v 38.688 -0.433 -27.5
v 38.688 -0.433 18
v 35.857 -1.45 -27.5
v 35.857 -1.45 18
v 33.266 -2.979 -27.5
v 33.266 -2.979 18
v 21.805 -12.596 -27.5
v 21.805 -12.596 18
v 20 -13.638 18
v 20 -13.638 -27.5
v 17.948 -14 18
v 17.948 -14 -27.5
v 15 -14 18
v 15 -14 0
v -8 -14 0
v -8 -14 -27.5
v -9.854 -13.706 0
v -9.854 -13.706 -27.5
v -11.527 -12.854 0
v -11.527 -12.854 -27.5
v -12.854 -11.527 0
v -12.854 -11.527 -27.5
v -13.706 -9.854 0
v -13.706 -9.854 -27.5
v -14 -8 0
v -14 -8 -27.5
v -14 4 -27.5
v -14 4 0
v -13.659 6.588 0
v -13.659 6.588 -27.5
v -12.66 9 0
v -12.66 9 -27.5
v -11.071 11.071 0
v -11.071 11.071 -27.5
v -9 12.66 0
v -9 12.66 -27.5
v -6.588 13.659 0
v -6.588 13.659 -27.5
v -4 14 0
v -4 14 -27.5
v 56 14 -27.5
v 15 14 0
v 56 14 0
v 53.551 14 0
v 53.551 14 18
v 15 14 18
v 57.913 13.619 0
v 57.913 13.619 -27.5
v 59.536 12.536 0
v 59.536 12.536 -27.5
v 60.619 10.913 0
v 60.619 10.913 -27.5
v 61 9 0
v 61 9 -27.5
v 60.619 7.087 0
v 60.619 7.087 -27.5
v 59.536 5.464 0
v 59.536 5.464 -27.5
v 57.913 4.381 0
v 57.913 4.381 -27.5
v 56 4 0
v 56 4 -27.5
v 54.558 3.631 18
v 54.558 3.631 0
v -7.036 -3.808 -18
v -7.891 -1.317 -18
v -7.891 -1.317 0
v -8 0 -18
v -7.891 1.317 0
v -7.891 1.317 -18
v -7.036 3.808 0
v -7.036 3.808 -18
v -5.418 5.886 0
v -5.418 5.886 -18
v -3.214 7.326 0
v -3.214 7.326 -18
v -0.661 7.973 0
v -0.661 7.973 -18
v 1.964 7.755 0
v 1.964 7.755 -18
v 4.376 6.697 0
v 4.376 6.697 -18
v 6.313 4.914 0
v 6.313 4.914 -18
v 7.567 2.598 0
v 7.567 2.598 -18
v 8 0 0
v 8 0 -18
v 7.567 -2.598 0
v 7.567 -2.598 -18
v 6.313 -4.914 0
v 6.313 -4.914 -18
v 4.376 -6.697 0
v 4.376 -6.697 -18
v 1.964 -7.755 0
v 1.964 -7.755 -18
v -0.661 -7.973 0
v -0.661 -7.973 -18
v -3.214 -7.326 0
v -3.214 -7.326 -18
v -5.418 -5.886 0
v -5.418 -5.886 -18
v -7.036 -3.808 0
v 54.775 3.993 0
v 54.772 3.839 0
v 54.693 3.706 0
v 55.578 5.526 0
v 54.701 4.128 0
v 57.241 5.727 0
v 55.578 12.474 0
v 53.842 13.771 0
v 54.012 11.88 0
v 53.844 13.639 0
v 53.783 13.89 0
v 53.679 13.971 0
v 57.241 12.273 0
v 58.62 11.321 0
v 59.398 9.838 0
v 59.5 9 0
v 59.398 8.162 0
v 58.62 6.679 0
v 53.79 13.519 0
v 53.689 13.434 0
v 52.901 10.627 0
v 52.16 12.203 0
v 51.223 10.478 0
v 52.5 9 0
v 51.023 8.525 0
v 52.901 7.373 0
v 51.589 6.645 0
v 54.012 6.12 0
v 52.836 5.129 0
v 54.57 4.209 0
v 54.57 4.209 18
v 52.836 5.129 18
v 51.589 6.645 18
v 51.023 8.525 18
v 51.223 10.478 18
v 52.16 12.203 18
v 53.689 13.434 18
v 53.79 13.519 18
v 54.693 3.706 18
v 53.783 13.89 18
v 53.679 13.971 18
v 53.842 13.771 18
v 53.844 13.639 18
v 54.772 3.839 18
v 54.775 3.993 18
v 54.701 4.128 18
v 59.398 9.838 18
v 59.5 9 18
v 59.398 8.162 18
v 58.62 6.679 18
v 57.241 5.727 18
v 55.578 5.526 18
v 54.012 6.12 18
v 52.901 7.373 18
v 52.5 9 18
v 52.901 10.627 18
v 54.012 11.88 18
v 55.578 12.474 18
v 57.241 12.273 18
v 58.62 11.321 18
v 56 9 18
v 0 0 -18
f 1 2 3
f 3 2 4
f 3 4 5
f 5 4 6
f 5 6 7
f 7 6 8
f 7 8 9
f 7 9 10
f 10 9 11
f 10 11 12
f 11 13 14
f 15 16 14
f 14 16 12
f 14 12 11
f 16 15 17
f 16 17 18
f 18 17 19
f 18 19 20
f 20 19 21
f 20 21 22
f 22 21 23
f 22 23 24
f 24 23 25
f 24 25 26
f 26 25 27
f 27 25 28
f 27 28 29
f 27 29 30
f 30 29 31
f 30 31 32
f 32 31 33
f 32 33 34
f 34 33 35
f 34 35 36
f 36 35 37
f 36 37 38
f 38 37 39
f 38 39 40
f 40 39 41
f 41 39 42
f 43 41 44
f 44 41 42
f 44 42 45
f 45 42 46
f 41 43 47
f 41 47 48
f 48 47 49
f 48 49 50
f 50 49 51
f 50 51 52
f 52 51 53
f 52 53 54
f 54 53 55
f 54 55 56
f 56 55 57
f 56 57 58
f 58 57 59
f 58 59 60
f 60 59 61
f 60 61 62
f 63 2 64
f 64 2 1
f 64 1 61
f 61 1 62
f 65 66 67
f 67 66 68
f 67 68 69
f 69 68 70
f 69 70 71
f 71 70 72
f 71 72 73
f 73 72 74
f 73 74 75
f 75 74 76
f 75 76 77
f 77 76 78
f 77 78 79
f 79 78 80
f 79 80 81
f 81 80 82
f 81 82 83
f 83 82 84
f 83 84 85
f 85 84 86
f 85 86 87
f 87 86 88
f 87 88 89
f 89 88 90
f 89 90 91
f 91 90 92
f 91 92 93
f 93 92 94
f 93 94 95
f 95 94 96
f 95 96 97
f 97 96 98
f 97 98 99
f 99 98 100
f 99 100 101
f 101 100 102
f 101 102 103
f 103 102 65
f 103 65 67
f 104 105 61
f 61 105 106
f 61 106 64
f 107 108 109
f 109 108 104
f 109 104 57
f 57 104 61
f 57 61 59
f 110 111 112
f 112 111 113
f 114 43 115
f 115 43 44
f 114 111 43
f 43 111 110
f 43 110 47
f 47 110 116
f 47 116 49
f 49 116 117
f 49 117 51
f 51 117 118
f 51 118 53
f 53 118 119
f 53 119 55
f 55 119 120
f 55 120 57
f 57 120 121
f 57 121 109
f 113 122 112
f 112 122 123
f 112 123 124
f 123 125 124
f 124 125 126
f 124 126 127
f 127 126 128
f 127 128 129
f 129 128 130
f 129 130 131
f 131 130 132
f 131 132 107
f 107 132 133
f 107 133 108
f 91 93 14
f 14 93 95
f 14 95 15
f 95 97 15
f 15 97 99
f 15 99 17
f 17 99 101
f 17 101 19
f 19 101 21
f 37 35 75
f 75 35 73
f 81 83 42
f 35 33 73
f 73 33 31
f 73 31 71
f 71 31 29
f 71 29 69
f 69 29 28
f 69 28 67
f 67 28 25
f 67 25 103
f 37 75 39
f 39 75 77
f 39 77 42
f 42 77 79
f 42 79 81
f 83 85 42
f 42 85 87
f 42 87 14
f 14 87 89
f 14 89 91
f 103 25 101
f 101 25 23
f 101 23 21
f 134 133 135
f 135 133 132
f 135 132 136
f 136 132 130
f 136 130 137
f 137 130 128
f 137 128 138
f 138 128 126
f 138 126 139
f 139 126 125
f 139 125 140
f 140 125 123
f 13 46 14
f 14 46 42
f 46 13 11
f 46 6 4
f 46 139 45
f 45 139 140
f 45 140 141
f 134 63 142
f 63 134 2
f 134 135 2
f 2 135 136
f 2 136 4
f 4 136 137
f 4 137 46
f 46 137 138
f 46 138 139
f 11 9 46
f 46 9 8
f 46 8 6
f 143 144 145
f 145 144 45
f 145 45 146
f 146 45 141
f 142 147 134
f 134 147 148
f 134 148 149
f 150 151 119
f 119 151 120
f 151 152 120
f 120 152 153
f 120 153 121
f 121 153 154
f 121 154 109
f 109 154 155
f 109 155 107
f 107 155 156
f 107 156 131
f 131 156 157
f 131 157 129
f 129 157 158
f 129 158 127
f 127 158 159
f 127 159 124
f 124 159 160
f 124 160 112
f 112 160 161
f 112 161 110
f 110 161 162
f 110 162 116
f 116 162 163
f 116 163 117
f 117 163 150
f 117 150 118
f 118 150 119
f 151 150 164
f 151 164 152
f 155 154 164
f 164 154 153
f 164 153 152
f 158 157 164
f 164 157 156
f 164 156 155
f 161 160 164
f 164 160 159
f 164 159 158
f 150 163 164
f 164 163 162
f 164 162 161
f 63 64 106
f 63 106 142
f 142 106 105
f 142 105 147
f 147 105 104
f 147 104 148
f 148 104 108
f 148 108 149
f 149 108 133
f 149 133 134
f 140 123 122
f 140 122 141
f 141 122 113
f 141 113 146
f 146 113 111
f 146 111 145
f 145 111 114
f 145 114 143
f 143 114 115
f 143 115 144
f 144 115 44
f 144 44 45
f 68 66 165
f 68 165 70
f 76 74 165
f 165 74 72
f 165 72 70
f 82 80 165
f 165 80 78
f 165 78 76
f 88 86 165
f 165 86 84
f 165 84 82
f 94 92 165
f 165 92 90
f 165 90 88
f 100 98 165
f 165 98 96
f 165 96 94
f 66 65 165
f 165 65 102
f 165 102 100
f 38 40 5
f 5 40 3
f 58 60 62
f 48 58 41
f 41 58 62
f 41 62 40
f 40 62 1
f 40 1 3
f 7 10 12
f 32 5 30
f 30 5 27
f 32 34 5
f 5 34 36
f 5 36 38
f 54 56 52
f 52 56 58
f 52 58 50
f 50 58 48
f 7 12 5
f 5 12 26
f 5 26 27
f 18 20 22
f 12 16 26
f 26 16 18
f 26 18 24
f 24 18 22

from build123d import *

# Parameters (mm, degrees)
SKETCH1_R           = 8
SKETCH1_R_2         = 5
SKETCH1_R_3         = 3.5
BOSS_EXTRUDE1_DEPTH = 48.5
BOSS_EXTRUDE2_START = 18
SKETCH3_R           = 3.5
BOSS_EXTRUDE2_DEPTH = 18
FILLET1_DEPTH       = 19
CUT_EXTRUDE1_START  = -30.5
CUT_EXTRUDE1_DEPTH  = 30.5
BOSS_EXTRUDE3_DEPTH = 9.5


with BuildPart() as part:
    # Sketch1 → Boss-Extrude1 (new body)
    # profile 1 of 4: a face of its own
    with BuildSketch(Plane.XY):
        with BuildLine():
            Line((15, -14), (17.94787914, -14))
            ThreePointArc((17.94787914, -14), (20, -13.638155725), (21.804604798, -12.596266659))
            Line((21.804604798, -12.596266659), (33.266394429, -2.978683207))
            ThreePointArc((33.266394429, -2.978683207), (35.857071693, -1.449912319), (38.688110115, -0.433068885))
            Line((38.688110115, -0.433068885), (56, 4))
            ThreePointArc((56, 4), (51, 9), (56, 14))
            Line((56, 14), (15, 14))
            Line((15, 14), (15, -14))
        make_face()
    # profile 2 of 4: a face of its own
    with BuildSketch(Plane.XY):
        with BuildLine():
            Line((-8, -14), (15, -14))
            Line((15, -14), (15, 14))
            Line((15, 14), (-4, 14))
            ThreePointArc((-4, 14), (-11.071067812, 11.071067812), (-14, 4))
            Line((-14, 4), (-14, -8))
            ThreePointArc((-14, -8), (-12.242640687, -12.242640687), (-8, -14))
        make_face()
        Circle(SKETCH1_R, mode=Mode.SUBTRACT)
    # profile 3 of 4: a face of its own
    with BuildSketch(Plane.XY):
        with Locations((56, 9)):
            Circle(SKETCH1_R_2)
        with Locations((56, 9)):
            Circle(SKETCH1_R_3, mode=Mode.SUBTRACT)
    # profile 4 of 4: a face of its own
    with BuildSketch(Plane.XY):
        with Locations((56, 9)):
            Circle(SKETCH1_R_3)
    extrude(amount=-BOSS_EXTRUDE1_DEPTH)

    # Sketch3 → Boss-Extrude2 (add)
    with BuildSketch(Plane.XY.offset(BOSS_EXTRUDE2_START)):
        with BuildLine():
            Line((38.688110115, -0.433068885), (56, 4))
            ThreePointArc((56, 4), (51, 9), (56, 14))
            Line((56, 14), (15, 14))
            Line((15, 14), (15, -14))
            Line((15, -14), (17.94787914, -14))
            ThreePointArc((17.94787914, -14), (20, -13.638155725), (21.804604798, -12.596266659))
            Line((21.804604798, -12.596266659), (33.266394429, -2.978683207))
            ThreePointArc((33.266394429, -2.978683207), (35.857071693, -1.449912319), (38.688110115, -0.433068885))
        make_face()
        with Locations((56, 9)):
            Circle(SKETCH3_R)
    extrude(amount=-BOSS_EXTRUDE2_DEPTH)

    # Fillet1: read off the stored shape, not the designer's step
    # Fillet1 outline → Fillet1 (cut)
    with BuildSketch(Plane.XY):
        with BuildLine():
            ThreePointArc((56, 4), (55.277287525, 4.052507031), (54.569754044, 4.208925329))
            ThreePointArc((54.569754044, 4.208925329), (54.783881024, 3.915548669), (54.55835931, 3.630837966))
            Line((54.55835931, 3.630837966), (56, 4))
        make_face()
        with BuildLine():
            ThreePointArc((53.550510257, 14), (53.841896016, 13.771374643), (53.68916062, 13.433962264))
            ThreePointArc((53.68916062, 13.433962264), (54.810422621, 13.856429312), (56, 14))
            Line((56, 14), (53.550510257, 14))
        make_face()
    extrude(amount=FILLET1_DEPTH, mode=Mode.SUBTRACT)

    # Sketch6 → Cut-Extrude1 (cut)
    with BuildSketch(Plane(origin=(0, 0, -48.5), x_dir=(-1, 0, 0), z_dir=(0, 0, -1)).offset(CUT_EXTRUDE1_START)):
        with BuildLine():
            Line((-33.266394429, -2.978683207), (-21.804604798, -12.596266659))
            ThreePointArc((-21.804604798, -12.596266659), (-20, -13.638155725), (-17.94787914, -14))
            Line((-17.94787914, -14), (8, -14))
            ThreePointArc((8, -14), (12.242640687, -12.242640687), (14, -8))
            Line((14, -8), (14, 4))
            ThreePointArc((14, 4), (11.071067812, 11.071067812), (4, 14))
            Line((4, 14), (-56, 14))
            ThreePointArc((-56, 14), (-61, 9), (-56, 4))
            Line((-56, 4), (-38.688110115, -0.433068885))
            ThreePointArc((-38.688110115, -0.433068885), (-35.857071693, -1.449912319), (-33.266394429, -2.978683207))
        make_face()
    extrude(amount=CUT_EXTRUDE1_DEPTH, mode=Mode.SUBTRACT)

    # Sketch7 → Boss-Extrude3 (add)
    with BuildSketch(Plane(origin=(0, 0, -18), x_dir=(-1, 0, 0), z_dir=(0, 0, -1))):
        with BuildLine():
            Line((-33.266394429, -2.978683207), (-21.804604798, -12.596266659))
            ThreePointArc((-21.804604798, -12.596266659), (-20, -13.638155725), (-17.94787914, -14))
            Line((-17.94787914, -14), (8, -14))
            ThreePointArc((8, -14), (12.242640687, -12.242640687), (14, -8))
            Line((14, -8), (14, 4))
            ThreePointArc((14, 4), (11.071067812, 11.071067812), (4, 14))
            Line((4, 14), (-56, 14))
            ThreePointArc((-56, 14), (-61, 9), (-56, 4))
            Line((-56, 4), (-38.688110115, -0.433068885))
            ThreePointArc((-38.688110115, -0.433068885), (-35.857071693, -1.449912319), (-33.266394429, -2.978683207))
        make_face()
    extrude(amount=BOSS_EXTRUDE3_DEPTH)


solid = part.part
